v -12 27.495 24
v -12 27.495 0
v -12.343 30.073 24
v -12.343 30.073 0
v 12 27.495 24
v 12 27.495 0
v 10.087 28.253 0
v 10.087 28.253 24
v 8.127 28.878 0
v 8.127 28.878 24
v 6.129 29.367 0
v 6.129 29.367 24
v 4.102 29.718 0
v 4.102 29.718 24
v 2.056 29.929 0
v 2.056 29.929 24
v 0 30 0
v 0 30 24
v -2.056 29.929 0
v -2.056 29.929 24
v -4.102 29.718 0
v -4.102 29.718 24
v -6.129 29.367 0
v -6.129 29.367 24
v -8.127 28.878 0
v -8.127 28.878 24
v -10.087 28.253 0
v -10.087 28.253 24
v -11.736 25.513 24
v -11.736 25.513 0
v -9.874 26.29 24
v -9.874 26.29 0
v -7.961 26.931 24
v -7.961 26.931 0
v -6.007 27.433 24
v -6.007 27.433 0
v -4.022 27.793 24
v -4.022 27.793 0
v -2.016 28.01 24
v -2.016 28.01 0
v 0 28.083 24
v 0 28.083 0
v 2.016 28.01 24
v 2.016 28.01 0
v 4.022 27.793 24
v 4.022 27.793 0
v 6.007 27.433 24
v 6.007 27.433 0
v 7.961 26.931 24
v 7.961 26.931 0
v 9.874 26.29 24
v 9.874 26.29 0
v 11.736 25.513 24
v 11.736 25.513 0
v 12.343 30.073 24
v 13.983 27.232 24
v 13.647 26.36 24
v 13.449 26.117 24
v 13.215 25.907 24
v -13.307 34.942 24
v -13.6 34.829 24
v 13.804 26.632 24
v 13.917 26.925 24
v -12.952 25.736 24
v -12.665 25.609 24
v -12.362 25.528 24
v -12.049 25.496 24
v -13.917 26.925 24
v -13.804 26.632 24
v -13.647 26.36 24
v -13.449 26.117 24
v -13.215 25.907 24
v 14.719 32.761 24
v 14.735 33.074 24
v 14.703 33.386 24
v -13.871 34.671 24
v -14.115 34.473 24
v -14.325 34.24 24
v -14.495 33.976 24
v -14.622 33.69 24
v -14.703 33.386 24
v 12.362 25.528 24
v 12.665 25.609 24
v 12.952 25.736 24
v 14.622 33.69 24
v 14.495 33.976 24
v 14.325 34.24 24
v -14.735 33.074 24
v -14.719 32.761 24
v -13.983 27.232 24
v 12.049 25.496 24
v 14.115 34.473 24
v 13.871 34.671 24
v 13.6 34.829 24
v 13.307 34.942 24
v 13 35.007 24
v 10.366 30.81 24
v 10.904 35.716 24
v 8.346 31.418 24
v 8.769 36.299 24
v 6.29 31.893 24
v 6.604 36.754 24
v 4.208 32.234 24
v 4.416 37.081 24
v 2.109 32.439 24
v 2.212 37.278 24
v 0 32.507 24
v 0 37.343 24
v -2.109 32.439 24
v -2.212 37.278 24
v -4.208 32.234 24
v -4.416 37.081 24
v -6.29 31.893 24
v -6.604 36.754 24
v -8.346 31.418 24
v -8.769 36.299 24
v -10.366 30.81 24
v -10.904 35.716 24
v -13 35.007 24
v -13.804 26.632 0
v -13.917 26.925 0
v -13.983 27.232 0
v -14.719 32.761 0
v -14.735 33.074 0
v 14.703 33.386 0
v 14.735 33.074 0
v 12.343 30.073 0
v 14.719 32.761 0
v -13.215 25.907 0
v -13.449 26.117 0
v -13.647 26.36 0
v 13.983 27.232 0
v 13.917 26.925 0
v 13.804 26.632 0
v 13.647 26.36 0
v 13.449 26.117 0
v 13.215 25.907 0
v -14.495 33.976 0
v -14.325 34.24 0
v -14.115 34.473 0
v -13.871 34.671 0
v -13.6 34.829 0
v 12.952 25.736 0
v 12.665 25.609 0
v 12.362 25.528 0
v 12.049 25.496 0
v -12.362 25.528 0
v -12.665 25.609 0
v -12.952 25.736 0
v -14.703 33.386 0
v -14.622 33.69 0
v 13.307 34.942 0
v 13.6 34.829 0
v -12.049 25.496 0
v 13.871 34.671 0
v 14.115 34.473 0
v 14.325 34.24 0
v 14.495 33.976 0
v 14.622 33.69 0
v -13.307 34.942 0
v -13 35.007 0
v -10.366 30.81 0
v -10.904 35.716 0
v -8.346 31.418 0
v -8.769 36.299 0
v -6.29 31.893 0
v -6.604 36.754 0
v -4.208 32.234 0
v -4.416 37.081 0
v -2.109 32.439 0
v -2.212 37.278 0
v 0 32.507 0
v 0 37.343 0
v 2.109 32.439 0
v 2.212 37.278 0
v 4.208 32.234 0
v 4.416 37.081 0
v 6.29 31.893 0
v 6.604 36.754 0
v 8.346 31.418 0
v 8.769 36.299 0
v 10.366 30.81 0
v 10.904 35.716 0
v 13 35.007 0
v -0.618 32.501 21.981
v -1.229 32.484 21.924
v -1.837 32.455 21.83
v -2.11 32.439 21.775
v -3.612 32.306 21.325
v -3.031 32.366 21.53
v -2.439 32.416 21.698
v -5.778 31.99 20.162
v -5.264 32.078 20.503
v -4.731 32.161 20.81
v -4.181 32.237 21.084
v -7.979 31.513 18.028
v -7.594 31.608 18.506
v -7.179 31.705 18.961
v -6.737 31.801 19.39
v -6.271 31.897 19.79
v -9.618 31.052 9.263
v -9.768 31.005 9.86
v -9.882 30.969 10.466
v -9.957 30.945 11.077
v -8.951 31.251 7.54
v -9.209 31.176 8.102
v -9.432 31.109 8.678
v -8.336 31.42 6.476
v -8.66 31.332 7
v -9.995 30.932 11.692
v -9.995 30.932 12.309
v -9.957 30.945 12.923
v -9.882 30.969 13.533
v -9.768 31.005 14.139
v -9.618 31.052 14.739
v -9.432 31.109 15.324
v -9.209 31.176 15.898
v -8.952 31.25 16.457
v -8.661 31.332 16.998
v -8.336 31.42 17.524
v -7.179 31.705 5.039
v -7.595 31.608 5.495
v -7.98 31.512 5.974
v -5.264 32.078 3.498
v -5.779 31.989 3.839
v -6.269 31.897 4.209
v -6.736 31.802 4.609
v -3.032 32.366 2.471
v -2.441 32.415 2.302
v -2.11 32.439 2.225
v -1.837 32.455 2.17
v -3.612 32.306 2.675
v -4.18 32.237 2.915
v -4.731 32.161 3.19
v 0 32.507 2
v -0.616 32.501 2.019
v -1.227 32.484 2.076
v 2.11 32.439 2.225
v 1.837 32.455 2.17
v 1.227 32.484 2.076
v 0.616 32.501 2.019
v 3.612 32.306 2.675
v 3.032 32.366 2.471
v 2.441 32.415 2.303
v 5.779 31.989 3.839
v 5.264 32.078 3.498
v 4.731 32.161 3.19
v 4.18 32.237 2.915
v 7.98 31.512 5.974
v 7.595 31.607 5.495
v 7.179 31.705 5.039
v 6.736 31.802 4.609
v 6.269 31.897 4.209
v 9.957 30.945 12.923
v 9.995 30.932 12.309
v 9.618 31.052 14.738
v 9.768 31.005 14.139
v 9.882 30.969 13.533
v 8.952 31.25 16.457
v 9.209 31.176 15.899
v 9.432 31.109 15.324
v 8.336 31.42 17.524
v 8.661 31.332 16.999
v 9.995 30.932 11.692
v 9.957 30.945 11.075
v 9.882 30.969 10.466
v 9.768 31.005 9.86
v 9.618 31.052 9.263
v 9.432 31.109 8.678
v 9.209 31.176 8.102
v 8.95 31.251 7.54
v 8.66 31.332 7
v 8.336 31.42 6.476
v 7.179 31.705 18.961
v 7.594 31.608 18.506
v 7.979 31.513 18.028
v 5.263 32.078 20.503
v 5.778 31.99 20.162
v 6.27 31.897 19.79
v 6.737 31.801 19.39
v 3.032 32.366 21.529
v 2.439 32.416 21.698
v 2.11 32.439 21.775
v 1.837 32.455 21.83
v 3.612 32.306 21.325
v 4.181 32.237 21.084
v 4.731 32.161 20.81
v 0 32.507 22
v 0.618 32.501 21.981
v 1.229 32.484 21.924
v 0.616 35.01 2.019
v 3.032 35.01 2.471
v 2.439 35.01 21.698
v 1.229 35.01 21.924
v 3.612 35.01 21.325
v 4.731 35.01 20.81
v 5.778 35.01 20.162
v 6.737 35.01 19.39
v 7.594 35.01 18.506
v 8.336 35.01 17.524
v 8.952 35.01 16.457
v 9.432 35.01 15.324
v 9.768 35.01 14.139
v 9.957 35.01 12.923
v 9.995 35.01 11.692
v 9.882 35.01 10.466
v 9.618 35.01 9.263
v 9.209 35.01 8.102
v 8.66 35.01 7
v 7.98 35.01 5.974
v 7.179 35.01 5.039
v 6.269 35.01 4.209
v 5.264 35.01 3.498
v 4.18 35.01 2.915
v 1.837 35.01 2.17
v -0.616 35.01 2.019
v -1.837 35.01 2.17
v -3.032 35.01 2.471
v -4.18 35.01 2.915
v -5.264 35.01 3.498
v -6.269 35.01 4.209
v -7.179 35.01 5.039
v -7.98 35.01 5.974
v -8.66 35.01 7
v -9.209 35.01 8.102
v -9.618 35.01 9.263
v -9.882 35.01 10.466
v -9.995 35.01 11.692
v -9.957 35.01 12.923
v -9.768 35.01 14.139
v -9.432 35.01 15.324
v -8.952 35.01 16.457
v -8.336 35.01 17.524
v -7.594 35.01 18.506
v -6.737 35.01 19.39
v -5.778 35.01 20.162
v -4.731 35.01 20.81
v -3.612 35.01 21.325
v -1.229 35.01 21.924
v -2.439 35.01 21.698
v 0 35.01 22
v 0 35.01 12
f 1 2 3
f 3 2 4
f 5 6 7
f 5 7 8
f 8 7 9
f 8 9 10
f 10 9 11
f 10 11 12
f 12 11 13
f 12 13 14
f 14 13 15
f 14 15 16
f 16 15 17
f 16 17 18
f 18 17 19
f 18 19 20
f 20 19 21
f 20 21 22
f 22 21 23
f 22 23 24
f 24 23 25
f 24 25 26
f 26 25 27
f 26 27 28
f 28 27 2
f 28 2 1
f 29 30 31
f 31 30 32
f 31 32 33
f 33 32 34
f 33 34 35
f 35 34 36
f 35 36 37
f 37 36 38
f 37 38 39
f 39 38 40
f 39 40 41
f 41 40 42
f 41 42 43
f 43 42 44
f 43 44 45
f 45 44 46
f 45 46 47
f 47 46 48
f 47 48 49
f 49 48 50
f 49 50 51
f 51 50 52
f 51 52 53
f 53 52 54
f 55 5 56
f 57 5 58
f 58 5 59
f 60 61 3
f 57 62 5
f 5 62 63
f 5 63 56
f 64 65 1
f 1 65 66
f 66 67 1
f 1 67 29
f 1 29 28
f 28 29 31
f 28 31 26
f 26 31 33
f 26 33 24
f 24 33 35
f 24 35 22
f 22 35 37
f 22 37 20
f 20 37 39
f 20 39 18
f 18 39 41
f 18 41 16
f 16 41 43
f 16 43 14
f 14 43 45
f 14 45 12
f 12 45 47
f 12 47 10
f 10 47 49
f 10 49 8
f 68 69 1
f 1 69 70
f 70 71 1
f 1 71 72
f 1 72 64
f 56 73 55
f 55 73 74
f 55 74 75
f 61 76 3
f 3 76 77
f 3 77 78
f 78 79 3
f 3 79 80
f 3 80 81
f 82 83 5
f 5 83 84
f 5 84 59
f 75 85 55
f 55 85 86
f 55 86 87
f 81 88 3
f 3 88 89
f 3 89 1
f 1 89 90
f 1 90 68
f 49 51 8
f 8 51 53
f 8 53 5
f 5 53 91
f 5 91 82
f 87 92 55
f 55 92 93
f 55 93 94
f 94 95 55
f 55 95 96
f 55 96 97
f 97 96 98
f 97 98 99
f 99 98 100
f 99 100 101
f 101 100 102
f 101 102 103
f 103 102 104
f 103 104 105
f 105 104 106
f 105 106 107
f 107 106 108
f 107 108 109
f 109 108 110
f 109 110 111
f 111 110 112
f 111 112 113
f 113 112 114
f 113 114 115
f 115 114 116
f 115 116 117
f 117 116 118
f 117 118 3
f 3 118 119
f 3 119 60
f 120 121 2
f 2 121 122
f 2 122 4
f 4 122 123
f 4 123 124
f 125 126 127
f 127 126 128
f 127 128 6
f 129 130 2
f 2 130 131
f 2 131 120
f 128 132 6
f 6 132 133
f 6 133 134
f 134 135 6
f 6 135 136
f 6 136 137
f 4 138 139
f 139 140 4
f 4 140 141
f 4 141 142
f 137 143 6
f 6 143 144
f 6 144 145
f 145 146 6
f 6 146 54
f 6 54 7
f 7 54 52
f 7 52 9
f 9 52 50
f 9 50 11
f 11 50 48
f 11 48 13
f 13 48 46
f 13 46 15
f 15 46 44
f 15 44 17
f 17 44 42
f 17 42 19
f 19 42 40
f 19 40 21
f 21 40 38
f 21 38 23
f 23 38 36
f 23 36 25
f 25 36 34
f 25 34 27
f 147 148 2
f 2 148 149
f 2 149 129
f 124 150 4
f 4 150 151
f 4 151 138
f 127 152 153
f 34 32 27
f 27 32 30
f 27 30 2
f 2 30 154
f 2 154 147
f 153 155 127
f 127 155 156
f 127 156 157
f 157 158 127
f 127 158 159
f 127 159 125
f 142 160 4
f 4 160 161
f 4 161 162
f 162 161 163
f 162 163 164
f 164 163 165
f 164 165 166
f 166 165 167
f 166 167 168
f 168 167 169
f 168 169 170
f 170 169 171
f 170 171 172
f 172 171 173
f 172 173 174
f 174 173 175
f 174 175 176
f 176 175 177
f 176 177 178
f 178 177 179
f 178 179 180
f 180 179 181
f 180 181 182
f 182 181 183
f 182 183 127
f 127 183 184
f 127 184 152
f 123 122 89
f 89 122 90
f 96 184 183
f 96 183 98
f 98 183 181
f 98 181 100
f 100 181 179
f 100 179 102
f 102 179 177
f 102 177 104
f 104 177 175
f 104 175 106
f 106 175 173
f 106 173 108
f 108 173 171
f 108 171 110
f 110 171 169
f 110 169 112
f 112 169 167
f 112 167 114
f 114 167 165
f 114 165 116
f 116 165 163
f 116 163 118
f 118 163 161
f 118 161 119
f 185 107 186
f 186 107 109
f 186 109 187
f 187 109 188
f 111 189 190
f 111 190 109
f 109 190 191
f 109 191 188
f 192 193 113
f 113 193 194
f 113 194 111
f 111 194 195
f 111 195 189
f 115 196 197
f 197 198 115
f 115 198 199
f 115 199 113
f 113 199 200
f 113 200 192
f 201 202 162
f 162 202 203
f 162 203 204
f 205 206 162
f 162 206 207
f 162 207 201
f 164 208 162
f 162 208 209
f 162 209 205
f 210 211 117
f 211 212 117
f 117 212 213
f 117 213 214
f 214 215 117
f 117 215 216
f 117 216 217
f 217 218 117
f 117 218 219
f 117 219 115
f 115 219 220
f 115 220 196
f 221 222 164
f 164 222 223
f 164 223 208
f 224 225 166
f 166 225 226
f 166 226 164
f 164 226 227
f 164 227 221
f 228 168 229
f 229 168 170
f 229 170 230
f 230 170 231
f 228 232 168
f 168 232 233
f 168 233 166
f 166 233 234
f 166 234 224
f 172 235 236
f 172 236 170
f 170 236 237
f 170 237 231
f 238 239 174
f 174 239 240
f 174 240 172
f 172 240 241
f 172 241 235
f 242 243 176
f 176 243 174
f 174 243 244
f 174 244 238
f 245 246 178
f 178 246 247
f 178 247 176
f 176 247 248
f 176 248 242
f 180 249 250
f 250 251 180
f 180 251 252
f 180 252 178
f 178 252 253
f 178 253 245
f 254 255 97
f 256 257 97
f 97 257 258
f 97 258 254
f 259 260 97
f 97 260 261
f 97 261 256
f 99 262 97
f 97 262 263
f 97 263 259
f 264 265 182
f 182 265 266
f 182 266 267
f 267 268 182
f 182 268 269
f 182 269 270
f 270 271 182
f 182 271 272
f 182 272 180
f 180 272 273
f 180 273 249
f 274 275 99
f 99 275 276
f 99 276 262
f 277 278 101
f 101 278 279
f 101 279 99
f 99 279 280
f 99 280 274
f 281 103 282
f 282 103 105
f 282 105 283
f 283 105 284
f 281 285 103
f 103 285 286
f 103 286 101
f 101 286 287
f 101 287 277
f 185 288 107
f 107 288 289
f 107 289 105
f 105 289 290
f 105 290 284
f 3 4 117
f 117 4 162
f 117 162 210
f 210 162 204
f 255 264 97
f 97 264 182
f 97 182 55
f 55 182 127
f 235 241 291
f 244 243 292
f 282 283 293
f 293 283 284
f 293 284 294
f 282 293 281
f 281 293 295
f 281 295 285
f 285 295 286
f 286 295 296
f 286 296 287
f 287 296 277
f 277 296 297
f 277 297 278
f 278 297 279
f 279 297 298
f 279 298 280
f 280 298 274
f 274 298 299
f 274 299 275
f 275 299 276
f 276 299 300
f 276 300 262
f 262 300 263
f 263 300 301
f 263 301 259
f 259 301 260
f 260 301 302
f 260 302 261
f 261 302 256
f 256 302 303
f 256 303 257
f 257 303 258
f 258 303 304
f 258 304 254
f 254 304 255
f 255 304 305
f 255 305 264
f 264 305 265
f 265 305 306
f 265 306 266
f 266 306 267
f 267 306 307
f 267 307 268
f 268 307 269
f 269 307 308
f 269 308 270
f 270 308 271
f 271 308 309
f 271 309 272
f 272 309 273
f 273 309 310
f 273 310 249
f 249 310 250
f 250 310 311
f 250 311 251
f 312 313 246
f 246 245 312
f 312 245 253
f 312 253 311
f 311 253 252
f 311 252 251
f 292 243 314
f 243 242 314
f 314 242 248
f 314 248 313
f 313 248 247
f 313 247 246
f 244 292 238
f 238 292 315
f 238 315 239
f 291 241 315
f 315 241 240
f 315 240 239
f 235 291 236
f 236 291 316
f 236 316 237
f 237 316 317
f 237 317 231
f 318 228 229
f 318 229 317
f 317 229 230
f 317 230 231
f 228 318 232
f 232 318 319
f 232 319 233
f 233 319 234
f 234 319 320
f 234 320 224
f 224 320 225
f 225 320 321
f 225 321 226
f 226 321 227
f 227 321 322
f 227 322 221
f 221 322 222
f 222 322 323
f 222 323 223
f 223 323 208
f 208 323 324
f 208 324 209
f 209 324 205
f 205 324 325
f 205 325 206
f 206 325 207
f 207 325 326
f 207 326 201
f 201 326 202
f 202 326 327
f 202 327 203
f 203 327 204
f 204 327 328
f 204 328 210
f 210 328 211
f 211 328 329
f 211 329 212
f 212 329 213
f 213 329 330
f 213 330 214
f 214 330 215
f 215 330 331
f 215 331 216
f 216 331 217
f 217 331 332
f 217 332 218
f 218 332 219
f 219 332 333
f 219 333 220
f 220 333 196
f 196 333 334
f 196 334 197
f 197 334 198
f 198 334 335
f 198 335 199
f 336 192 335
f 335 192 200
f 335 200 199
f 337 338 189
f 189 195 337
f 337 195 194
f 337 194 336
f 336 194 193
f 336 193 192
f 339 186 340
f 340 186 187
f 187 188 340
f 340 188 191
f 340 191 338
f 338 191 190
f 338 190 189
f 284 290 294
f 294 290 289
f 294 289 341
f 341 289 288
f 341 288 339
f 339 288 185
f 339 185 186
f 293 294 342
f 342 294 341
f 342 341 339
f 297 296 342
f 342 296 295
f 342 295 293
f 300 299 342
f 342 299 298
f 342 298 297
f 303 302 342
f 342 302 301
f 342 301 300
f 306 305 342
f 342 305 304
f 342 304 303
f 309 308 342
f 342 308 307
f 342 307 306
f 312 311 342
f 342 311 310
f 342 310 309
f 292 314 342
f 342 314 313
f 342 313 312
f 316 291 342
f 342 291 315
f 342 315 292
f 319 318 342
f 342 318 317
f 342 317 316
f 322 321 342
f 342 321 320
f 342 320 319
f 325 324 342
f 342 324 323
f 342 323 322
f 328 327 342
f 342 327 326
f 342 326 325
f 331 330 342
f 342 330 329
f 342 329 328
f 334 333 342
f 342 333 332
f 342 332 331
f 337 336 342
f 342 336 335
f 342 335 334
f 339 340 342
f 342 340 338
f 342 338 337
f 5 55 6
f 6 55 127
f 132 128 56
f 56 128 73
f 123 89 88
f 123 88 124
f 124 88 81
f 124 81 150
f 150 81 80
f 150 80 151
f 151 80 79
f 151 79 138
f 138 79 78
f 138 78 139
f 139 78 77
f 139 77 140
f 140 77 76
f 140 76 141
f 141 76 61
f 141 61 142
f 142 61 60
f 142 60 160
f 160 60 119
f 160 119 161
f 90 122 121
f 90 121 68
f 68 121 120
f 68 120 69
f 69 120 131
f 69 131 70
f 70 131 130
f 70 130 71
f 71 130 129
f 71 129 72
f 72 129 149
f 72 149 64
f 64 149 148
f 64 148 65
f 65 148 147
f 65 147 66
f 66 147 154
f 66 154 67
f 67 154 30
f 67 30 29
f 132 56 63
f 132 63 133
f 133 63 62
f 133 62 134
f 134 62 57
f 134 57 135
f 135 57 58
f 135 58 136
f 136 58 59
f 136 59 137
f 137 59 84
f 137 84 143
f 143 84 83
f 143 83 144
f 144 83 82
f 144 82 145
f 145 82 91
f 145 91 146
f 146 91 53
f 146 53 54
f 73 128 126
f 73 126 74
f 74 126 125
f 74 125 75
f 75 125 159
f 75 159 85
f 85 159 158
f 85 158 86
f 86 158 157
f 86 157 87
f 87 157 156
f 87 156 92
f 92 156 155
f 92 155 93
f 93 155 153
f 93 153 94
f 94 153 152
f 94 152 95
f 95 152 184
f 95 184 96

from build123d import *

# Parameters (mm, degrees)
BOSS_EXTRUDE1_DEPTH                 = 24
BOSS_EXTRUDE1_2_DEPTH               = 24
SKETCH4_R                           = 10
CUT_EXTRUDE1_DEPTH                  = 2.5
CUT_EXTRUDE1_DIRECTION_2_REACH      = 30.177
CUT_EXTRUDE1_DIRECTION_2_END_RADIUS = 32.507235283
SKETCH5_W                           = 24
SKETCH5_H                           = 9.578050903
BOSS_EXTRUDE2_DEPTH                 = 2
SKETCH6_W                           = 24
SKETCH6_H                           = 9.578050903
BOSS_EXTRUDE3_DEPTH                 = 2
FILLET1_R                           = 2


with BuildPart() as part:
    # Sketch1 → Boss-Extrude1 (new body)
    with BuildSketch(Plane.XY):
        with BuildLine():
            Line((-13, 35.007235283), (-12.343096138, 30.072717261))
            ThreePointArc((-12.343096138, 30.072717261), (0, 32.507235283), (12.343096138, 30.072717261))
            Line((12.343096138, 30.072717261), (13, 35.007235283))
            ThreePointArc((13, 35.007235283), (0, 37.343092027), (-13, 35.007235283))
        make_face()
    extrude(amount=BOSS_EXTRUDE1_DEPTH)

    # Sketch4 → Cut-Extrude1 (cut)
    with BuildSketch(Plane(origin=(0, 32.51, 0), x_dir=(1, 0, 0), z_dir=(0, 1, 0))):
        with Locations(Location((0, -12, 0), (0, 0, 270))):
            Circle(SKETCH4_R)
    extrude(amount=CUT_EXTRUDE1_DEPTH, mode=Mode.SUBTRACT)

    # Cut-Extrude1 direction 2: up to this cylinder (the profile starts outside it)
    cut_extrude1_direction_2_end = Plane(origin=(0, 0, 12), z_dir=(0, 0, -1)) * Cylinder(CUT_EXTRUDE1_DIRECTION_2_END_RADIUS, 126.368470565, mode=Mode.PRIVATE)
    # Sketch4 → Cut-Extrude1 direction 2 (cut, up to the surface)
    with BuildSketch(Plane(origin=(0, 32.51, 0), x_dir=(1, 0, 0), z_dir=(0, 1, 0)), mode=Mode.PRIVATE) as cut_extrude1_direction_2_sk1:
        with Locations(Location((0, -12, 0), (0, 0, 270))):
            Circle(SKETCH4_R)
    cut_extrude1_direction_2_tool1 = extrude(cut_extrude1_direction_2_sk1.sketch, amount=-CUT_EXTRUDE1_DIRECTION_2_REACH, mode=Mode.PRIVATE) - cut_extrude1_direction_2_end
    add(cut_extrude1_direction_2_tool1.solids().sort_by_distance((0, 32.51, 12))[0], mode=Mode.SUBTRACT)



with BuildPart() as body_2:
    # Sketch1 → Boss-Extrude1 2 (new body)
    with BuildSketch(Plane.XY):
        with BuildLine():
            Line((11.736079894, 25.5129441), (12, 27.49545417))
            ThreePointArc((12, 27.49545417), (0, 30), (-12, 27.49545417))
            Line((-12, 27.49545417), (-11.736079894, 25.5129441))
            ThreePointArc((-11.736079894, 25.5129441), (0, 28.082839741), (11.736079894, 25.5129441))
        make_face()
    extrude(amount=BOSS_EXTRUDE1_2_DEPTH)


with BuildPart() as part_1:
    add(part.part)

    add(body_2.part)  # Boss-Extrude2 merges body 2
    # Sketch5 → Boss-Extrude2 (add)
    with BuildSketch(Plane(origin=(-8.194466309, -1.090881934, 0), x_dir=(0, 0, 1), z_dir=(-0.9912550349784054, -0.13196005315988815, 0))):
        with Locations((12, 31.627553475)):
            Rectangle(SKETCH5_W, SKETCH5_H)
    extrude(amount=BOSS_EXTRUDE2_DEPTH)

    # Sketch6 → Boss-Extrude3 (add)
    with BuildSketch(Plane(origin=(8.194466309, -1.090881934, 0), x_dir=(0, 0, -1), z_dir=(0.9912550349784054, -0.13196005315988815, 0))):
        with Locations((-12, 31.627553475)):
            Rectangle(SKETCH6_W, SKETCH6_H)
    extrude(amount=BOSS_EXTRUDE3_DEPTH)

    # Fillet1
    fillet1_edges = [part_1.edges().sort_by_distance(p)[0] for p in [
        (-14.98251007, 34.743315176, 12),
        (-13.718589964, 25.249023993, 12),
        (13.718589964, 25.249023993, 12),
        (14.98251007, 34.743315176, 12),
    ]]
    fillet(fillet1_edges, radius=FILLET1_R - 0.0001)  # a hair under: the kernel refuses the full size


solid = part_1.part
